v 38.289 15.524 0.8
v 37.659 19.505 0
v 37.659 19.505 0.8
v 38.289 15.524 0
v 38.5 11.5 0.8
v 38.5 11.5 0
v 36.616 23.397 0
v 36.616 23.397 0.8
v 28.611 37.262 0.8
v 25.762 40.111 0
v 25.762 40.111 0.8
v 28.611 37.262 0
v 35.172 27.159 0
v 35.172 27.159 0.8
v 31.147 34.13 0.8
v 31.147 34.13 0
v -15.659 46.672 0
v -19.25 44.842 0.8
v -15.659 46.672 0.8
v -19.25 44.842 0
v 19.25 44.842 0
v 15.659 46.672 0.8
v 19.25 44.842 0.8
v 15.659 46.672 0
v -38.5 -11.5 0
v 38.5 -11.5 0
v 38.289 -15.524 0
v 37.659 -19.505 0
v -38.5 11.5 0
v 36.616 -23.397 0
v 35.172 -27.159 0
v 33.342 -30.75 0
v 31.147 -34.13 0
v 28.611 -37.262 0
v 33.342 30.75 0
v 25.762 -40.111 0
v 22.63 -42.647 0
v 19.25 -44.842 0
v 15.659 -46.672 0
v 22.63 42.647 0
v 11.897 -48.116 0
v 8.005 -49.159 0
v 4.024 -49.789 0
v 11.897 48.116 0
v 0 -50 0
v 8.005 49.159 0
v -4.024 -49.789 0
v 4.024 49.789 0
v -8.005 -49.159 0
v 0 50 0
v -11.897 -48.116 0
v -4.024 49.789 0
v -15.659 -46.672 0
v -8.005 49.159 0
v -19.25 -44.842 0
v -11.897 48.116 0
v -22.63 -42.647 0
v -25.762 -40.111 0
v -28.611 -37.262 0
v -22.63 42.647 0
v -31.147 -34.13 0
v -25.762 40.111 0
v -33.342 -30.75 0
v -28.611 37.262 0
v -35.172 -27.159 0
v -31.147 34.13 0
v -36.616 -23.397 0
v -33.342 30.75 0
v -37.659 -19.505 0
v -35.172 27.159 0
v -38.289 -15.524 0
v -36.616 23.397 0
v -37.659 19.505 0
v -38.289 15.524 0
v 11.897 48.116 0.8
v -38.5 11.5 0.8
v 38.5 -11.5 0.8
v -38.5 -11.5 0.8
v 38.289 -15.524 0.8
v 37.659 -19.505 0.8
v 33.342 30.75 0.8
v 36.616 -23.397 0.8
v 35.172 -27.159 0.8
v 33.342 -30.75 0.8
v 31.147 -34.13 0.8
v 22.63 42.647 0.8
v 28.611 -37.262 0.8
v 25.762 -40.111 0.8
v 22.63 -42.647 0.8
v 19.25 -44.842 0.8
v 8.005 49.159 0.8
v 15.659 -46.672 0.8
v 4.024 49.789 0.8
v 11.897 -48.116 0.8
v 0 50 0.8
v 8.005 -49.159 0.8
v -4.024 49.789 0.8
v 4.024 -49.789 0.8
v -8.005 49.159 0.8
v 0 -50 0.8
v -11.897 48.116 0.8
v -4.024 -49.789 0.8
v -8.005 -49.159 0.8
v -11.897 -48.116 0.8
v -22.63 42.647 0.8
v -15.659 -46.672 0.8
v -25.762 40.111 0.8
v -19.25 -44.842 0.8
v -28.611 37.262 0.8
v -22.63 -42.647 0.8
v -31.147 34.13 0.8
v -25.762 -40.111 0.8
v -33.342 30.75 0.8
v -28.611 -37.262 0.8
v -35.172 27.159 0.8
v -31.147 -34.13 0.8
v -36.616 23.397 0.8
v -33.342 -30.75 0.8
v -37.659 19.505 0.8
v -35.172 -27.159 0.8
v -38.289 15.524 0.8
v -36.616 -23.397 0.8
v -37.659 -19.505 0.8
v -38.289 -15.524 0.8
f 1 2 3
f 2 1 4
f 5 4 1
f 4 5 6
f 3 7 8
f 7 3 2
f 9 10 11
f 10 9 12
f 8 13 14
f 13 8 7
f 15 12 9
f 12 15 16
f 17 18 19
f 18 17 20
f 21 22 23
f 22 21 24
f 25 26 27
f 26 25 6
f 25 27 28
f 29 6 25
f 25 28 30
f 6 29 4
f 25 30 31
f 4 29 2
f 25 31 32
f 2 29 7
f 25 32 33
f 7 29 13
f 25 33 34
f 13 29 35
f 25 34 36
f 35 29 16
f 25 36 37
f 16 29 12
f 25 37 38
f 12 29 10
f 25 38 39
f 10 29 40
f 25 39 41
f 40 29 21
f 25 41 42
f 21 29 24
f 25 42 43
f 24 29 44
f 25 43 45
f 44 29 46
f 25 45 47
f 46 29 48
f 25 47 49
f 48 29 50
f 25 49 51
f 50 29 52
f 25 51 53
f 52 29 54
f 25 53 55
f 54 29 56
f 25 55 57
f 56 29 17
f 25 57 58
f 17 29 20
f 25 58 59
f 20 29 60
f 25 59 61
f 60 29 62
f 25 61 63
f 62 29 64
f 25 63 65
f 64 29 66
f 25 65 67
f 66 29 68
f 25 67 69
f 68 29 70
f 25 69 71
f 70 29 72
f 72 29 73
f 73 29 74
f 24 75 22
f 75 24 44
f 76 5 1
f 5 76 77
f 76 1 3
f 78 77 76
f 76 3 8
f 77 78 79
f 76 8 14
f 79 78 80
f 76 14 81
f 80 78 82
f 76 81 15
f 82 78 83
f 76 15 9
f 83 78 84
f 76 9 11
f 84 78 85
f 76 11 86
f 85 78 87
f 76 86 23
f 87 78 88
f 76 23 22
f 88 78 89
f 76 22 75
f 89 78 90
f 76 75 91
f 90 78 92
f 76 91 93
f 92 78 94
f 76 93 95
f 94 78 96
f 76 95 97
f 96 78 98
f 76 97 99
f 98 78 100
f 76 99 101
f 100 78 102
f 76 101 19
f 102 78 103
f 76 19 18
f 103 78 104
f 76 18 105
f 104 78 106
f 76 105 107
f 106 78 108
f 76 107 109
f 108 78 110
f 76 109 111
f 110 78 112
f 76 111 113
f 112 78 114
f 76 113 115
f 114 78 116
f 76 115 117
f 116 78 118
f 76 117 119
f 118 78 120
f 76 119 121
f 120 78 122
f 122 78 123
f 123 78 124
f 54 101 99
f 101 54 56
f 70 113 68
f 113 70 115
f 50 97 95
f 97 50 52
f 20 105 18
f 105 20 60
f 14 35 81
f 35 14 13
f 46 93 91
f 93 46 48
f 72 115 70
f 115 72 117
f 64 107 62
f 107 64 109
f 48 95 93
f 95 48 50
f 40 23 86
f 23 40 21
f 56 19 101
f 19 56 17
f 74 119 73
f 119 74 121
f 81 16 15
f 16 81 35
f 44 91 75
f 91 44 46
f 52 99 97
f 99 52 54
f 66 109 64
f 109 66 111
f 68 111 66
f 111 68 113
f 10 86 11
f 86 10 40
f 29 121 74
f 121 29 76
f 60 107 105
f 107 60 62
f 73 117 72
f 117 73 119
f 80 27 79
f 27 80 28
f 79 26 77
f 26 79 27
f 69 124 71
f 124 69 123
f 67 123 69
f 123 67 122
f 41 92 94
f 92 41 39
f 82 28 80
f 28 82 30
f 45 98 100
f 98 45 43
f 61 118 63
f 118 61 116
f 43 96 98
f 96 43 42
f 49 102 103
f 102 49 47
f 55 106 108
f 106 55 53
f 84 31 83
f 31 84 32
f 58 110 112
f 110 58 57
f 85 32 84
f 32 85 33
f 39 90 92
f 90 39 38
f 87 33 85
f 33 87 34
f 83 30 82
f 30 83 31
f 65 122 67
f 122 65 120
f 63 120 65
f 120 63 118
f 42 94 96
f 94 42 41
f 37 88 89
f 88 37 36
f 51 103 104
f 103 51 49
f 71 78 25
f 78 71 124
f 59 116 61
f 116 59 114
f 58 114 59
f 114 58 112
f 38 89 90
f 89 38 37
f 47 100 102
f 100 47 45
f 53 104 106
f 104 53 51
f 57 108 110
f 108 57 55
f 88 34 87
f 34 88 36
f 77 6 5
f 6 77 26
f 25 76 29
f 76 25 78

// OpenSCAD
// file: ../palm-comb-backing.scad
module palmCombBacking(height = 0.8,
                       long = 95 + 5,
                       wide = 77)
{
    // color("black")
    // cube(size = [wide, long, height],
    //      center = true);

    radius = wide / 2.0;

    yTranslate = (long / 2.0) - radius;
    translate([0, yTranslate, 0])
    cylinder(r = radius, h = height,  $fn = 60);

    translate([0, -yTranslate, 0])
    cylinder(r = radius, h = height,  $fn = 60);

    xTranslate = -wide / 2.0;
    yLength = yTranslate * 2;
    color("blue")
    translate([xTranslate, -yLength / 2.0, 0])
    cube([wide, yLength, height]);
}
// main file
use <../palm-comb-backing.scad>

color("orange")
palmCombBacking();
